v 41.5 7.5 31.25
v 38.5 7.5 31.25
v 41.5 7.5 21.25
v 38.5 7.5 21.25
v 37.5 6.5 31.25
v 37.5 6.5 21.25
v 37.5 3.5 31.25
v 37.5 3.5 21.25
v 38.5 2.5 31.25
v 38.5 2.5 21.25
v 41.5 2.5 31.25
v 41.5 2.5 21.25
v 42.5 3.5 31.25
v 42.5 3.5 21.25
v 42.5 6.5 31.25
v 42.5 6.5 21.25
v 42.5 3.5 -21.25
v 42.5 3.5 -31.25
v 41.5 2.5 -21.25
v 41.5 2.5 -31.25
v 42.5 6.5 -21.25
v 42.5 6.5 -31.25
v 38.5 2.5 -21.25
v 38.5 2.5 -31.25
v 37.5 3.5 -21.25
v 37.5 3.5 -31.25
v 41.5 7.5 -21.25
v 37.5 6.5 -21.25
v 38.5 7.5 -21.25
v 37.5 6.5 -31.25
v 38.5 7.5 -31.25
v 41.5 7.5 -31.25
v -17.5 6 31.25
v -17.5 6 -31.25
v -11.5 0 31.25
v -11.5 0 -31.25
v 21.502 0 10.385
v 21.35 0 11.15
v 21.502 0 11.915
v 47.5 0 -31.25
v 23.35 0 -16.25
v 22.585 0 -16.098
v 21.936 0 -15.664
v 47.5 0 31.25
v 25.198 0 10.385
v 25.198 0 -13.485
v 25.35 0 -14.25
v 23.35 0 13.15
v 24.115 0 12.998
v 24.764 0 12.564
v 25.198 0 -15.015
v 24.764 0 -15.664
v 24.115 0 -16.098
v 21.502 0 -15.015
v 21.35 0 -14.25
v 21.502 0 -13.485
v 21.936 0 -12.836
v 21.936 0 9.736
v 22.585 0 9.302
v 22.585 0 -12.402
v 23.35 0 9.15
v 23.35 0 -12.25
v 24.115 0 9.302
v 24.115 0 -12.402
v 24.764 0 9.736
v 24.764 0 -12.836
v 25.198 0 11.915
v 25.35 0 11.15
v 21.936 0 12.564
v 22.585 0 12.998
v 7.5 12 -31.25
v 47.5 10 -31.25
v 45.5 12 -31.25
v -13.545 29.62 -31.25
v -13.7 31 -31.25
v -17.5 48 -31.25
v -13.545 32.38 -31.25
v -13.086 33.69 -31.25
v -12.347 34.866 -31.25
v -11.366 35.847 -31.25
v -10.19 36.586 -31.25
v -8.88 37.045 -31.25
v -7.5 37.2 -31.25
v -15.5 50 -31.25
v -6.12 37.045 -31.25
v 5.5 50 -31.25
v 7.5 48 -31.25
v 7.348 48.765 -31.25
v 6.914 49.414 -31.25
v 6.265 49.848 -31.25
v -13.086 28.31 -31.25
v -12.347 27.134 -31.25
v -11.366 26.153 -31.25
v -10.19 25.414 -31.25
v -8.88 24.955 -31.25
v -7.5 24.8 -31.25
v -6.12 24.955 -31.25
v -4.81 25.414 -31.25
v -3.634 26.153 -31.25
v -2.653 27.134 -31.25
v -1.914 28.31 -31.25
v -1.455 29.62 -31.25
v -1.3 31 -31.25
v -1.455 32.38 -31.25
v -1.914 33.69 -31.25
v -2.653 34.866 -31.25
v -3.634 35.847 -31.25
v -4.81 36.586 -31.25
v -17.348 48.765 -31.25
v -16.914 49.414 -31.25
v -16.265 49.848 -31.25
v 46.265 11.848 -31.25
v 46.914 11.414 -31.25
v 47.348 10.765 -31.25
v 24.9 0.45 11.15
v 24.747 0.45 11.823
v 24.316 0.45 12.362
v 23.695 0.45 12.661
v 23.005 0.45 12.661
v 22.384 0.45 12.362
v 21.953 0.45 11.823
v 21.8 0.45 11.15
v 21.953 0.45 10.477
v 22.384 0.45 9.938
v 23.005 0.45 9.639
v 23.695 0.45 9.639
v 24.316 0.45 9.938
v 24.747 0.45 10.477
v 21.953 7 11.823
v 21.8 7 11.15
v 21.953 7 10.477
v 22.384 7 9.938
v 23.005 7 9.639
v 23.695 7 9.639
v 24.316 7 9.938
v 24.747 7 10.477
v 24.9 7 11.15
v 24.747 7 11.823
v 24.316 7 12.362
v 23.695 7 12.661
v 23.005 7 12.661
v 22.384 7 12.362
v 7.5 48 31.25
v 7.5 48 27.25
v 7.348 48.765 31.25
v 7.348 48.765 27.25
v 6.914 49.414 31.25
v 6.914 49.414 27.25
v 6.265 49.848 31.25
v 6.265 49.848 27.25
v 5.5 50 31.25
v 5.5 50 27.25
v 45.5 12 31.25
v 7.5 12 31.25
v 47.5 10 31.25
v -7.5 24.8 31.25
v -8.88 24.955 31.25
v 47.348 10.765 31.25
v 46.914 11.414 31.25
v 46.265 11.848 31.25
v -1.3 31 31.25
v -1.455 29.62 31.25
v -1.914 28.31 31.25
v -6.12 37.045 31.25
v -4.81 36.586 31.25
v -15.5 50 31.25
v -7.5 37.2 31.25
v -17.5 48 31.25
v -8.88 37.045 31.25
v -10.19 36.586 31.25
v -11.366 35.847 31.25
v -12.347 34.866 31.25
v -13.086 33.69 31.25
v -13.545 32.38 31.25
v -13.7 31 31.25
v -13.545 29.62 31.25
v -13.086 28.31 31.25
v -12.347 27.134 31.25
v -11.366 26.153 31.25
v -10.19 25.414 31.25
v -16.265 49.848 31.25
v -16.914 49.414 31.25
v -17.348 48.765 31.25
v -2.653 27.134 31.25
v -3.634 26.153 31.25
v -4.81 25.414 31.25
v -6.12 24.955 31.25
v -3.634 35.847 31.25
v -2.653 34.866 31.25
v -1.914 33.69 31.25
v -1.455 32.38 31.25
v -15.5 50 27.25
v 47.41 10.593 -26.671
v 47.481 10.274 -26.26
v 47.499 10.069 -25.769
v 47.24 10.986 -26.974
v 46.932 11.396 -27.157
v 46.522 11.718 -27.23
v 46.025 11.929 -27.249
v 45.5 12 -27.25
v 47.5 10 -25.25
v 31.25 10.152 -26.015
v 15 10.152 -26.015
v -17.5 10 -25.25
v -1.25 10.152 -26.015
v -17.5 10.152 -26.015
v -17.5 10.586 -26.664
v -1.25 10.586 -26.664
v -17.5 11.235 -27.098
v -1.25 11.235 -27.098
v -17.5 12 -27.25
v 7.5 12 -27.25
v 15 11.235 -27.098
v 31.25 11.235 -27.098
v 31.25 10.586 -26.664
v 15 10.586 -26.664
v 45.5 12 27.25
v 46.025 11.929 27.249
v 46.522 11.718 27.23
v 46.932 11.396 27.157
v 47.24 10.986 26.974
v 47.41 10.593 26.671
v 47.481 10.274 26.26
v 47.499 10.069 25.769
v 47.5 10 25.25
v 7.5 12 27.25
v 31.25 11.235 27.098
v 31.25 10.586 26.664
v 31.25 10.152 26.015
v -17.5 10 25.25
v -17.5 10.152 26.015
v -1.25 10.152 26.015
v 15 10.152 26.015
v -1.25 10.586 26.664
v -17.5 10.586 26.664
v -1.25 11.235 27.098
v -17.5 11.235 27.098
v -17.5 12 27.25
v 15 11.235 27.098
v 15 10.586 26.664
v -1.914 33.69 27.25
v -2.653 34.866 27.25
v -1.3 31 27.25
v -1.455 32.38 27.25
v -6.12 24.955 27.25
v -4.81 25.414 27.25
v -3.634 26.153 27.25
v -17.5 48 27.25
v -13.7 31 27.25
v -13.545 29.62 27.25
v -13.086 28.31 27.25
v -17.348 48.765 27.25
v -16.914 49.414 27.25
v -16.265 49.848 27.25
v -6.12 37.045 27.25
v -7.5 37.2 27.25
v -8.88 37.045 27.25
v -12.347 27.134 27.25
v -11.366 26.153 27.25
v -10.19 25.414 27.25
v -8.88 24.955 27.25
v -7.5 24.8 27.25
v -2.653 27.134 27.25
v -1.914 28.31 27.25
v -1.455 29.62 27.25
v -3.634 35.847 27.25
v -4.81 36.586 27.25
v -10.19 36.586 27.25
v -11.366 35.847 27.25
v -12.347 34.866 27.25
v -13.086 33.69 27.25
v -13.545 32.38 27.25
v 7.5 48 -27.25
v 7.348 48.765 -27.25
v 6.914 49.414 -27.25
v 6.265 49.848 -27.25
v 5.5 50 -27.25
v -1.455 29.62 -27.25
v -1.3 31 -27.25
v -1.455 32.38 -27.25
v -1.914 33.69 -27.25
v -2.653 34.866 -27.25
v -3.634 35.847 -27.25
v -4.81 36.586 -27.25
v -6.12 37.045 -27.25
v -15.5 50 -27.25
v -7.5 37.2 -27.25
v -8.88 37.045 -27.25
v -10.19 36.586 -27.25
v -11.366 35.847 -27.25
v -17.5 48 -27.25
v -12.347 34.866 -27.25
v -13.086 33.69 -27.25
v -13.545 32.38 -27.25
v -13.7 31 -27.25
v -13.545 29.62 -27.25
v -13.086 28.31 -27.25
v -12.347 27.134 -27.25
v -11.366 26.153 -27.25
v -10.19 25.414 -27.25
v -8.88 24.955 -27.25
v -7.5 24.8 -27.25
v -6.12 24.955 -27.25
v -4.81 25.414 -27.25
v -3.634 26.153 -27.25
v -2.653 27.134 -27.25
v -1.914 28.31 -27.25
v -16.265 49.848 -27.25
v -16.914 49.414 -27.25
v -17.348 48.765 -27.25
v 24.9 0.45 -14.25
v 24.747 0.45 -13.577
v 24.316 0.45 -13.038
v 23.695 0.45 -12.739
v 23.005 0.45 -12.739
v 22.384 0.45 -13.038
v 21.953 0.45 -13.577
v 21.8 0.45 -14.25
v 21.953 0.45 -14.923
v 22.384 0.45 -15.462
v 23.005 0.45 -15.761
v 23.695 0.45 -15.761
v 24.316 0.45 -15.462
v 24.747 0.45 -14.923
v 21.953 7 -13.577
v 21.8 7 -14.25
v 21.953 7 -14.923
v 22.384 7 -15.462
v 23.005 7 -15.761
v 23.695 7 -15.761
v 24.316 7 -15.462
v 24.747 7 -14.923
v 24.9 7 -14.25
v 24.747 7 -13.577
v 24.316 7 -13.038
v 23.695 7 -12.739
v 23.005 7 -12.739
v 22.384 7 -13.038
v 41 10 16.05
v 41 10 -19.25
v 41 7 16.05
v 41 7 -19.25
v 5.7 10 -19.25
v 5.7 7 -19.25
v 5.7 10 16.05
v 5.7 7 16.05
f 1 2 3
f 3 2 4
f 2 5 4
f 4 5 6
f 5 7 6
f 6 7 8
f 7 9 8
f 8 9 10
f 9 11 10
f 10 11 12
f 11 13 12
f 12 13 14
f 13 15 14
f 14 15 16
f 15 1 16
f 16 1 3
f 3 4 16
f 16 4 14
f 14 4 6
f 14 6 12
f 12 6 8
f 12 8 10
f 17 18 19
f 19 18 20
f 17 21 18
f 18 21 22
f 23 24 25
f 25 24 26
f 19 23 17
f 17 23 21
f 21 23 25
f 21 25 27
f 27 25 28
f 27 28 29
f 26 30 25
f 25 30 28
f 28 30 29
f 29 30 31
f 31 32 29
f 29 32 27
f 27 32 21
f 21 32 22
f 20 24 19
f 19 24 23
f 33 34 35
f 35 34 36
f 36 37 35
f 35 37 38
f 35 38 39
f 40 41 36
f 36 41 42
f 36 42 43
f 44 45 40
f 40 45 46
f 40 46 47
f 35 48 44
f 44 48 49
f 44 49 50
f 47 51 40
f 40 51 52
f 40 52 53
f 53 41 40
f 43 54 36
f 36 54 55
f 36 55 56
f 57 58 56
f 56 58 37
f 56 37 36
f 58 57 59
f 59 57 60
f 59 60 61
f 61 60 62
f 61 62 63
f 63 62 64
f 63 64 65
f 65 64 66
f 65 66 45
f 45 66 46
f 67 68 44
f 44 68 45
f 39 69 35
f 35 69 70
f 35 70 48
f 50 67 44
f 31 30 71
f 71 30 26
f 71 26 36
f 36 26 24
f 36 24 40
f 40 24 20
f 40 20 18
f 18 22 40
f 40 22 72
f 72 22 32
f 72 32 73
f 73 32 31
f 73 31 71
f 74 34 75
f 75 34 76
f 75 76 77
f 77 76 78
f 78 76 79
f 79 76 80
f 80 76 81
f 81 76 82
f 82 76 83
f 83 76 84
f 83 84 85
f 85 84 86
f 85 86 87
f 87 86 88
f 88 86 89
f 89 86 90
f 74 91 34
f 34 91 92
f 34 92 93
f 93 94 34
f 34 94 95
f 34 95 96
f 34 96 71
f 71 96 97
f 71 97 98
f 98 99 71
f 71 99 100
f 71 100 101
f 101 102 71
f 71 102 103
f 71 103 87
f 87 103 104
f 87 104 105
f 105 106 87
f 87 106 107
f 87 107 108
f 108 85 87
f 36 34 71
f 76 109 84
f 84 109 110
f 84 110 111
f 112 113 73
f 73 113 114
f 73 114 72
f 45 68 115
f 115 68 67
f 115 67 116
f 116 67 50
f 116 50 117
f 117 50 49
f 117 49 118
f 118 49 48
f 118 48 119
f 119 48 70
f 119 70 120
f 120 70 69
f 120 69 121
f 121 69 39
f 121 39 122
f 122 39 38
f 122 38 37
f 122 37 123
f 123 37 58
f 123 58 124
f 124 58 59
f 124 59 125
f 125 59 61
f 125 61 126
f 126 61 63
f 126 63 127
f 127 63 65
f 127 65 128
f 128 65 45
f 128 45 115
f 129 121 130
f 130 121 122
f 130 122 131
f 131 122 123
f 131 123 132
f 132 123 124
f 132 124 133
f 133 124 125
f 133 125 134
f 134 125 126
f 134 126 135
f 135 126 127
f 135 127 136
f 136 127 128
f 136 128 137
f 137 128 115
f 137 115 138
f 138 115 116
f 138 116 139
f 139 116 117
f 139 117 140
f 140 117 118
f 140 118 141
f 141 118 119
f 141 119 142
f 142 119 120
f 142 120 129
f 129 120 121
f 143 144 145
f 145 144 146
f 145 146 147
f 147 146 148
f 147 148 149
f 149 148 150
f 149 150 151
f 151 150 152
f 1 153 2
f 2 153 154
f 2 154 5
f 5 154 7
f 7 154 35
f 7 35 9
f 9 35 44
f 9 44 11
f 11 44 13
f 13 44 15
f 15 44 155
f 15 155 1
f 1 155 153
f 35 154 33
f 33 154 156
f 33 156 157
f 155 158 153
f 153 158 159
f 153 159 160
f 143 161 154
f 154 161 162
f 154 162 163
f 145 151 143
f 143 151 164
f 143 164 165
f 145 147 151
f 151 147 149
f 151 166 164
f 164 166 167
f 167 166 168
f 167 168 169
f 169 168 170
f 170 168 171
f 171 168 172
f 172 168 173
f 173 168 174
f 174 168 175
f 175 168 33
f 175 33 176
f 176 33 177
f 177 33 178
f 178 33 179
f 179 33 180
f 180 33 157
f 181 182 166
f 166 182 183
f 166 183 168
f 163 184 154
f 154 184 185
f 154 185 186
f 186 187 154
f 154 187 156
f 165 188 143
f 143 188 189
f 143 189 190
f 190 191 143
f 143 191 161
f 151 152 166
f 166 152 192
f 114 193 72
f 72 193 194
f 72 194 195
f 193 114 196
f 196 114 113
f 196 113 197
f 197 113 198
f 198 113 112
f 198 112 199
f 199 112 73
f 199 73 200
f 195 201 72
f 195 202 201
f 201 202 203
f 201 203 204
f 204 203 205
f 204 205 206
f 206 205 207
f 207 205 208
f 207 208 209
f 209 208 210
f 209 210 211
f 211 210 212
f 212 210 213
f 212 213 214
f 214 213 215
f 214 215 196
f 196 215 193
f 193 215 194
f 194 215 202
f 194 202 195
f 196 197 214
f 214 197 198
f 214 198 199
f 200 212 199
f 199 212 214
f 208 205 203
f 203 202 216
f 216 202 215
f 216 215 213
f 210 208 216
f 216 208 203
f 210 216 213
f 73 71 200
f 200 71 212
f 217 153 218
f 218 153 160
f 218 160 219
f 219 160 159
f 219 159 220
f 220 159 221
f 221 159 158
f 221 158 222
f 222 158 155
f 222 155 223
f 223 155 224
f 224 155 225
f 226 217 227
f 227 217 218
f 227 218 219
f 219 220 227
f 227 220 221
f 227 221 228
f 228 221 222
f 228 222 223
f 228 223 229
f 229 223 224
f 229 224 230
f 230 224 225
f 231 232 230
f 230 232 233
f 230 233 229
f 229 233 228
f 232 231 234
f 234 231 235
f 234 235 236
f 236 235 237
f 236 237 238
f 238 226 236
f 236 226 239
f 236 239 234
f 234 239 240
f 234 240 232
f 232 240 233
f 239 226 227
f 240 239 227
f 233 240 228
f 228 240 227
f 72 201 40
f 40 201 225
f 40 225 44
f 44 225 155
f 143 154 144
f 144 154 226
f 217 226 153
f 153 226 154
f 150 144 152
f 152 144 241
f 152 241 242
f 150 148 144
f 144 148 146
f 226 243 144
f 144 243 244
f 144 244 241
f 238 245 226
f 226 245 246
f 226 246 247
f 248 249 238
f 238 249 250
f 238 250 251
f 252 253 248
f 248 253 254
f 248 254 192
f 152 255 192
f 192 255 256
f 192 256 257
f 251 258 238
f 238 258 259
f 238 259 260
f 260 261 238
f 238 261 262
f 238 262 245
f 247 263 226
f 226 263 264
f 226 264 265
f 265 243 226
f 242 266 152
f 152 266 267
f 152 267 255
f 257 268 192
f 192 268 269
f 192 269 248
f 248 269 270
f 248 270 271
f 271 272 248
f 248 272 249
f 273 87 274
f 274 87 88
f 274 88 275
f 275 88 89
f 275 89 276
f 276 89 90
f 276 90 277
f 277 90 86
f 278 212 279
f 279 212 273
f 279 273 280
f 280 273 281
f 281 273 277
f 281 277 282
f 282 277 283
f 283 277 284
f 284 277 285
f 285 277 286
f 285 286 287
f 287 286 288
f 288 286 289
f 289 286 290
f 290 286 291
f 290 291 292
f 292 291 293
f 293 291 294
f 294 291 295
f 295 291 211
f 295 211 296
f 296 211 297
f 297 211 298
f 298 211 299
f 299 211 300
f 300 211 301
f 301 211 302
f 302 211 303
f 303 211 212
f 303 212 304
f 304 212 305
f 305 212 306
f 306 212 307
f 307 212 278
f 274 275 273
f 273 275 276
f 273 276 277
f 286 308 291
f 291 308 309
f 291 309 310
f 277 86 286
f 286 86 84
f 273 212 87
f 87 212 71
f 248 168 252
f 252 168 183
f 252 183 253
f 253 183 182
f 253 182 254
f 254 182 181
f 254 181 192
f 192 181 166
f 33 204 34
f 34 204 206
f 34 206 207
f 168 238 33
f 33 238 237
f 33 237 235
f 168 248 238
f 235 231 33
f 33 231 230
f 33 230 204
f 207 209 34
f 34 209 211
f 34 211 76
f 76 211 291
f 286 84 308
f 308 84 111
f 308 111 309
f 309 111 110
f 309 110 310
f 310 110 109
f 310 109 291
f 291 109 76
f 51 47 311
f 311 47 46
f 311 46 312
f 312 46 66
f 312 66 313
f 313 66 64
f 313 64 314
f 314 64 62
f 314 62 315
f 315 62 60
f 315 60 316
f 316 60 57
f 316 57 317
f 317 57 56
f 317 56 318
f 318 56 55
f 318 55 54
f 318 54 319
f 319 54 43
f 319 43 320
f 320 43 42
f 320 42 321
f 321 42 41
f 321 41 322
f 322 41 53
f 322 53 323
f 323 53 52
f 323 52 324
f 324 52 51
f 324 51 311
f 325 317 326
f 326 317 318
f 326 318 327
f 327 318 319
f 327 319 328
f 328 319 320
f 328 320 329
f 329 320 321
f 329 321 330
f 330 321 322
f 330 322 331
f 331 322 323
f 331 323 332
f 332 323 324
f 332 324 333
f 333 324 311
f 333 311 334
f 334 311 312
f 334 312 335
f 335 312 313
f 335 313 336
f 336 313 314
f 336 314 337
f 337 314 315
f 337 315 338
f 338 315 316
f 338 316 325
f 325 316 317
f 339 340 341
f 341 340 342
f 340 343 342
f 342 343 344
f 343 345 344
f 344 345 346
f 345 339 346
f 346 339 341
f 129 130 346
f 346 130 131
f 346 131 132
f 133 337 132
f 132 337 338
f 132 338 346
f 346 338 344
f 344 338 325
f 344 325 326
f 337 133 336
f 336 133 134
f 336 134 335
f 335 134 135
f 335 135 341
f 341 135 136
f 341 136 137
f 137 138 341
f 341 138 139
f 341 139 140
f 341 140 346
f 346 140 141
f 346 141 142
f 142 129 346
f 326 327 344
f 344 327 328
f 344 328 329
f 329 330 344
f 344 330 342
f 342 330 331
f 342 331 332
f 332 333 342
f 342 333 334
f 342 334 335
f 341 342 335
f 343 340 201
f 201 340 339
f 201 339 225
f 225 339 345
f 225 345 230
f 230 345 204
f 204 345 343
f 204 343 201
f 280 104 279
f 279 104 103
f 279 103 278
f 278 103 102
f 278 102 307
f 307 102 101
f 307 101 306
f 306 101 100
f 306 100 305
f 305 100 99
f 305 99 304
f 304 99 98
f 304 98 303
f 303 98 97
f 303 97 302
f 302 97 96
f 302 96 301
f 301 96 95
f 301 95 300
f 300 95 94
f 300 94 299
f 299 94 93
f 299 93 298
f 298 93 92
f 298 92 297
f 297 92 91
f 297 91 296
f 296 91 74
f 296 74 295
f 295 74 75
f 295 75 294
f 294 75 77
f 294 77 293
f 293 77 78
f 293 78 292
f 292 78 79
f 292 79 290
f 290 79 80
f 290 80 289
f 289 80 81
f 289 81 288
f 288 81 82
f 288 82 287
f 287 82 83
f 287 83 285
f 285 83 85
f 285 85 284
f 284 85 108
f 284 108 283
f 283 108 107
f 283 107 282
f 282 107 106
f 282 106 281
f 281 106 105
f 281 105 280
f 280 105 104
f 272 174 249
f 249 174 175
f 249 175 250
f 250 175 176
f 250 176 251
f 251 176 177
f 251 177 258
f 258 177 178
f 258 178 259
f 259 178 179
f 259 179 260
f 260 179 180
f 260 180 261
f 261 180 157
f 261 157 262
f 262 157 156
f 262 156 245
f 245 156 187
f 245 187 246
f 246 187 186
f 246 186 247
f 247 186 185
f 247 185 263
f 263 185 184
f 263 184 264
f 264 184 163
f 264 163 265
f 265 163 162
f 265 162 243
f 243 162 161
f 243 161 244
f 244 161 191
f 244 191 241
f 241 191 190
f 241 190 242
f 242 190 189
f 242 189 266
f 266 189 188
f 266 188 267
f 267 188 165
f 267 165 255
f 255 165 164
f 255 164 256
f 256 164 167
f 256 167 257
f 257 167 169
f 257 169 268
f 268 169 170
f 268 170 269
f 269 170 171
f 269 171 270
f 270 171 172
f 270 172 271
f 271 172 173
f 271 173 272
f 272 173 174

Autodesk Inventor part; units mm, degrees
ref_plane "YZ Plane" through (0, 0, 0) normal (1, 0, 0) x (0, 1, 0)
sketch "Sketch1" plane through (0, 0, 0) normal (0, 1, 0) x (-1, 0, 0)
  line L0 (17.5, 31.25) -> (-17.5, 31.25)
  line L1 (-17.5, 31.25) -> (-17.5, -31.25)
  line L2 (-17.5, -31.25) -> (17.5, -31.25)
  line L3 (17.5, -31.25) -> (17.5, 31.25)
  line L4 (17.5, 31.25) -> (-17.5, -31.25) construction
  line L5 (-17.5, 31.25) -> (17.5, -31.25) construction
  point P0 (0, 0)
  dimension "d0" = 35
  dimension "d1" = 62.5
extrude "Extrusion1" add sketch "Sketch1" along normal blind 50
sketch "Sketch2" plane through (0, 50, 0) normal (0, 1, 0) x (1, 0, 0)
  line L0 (17.5, -31.25) -> (17.5, 31.25) projected
  line L1 (-17.5, -27.25) -> (17.5, -27.25)
  line L2 (17.5, -27.25) -> (17.5, 27.25)
  line L3 (17.5, 27.25) -> (-17.5, 27.25)
  line L4 (-17.5, 27.25) -> (-17.5, -27.25)
  line L5 (-17.5, -27.25) -> (17.5, 27.25) construction
  line L6 (17.5, -27.25) -> (-17.5, 27.25) construction
  line L7 (-17.5, -31.25) -> (17.5, -31.25) projected
  point P0 (0, 0)
  point P1 (17.5, -27.25)
  dimension "d4" = 4
extrude "Extrusion2" cut sketch "Sketch2" against normal blind 40
sketch "Sketch3" plane through (-17.5, 0, 31.25) normal (0, 0, 1) x (1, 0, 0)
  circle A0 centre (10, 31) radius 6.2
  line L0 (35, 10) -> (0, 10) projected
  line L1 (35, 10) -> (35, 50) projected
  line L2 (0, 0) -> (0, 50) projected
  point P0 (17.5, 0)
  point P1 (35, 30)
  dimension "d7" = 12.4
  dimension "d15" = 21
  dimension "d38" = 10
extrude "Extrusion3" cut sketch "Sketch3" against normal blind 8
sketch "Sketch4" plane through (17.5, 0, -31.25) normal (0, 0, -1) x (-1, 0, 0)
  circle A0 centre (25, 31) radius 6.2 projected
  point P0 (17.5, 0)
extrude "Extrusion4" cut sketch "Sketch4" against normal blind 8
fillet "Fillet1" radius 2 2 edges at (0, 10, 27.25) (0, 10, -27.25)
sketch "Sketch5" plane through (17.5, 0, 31.25) normal (1, 0, 0) x (0, 0, -1)
  line L0 (4, 12) -> (4, 50) projected
  line L1 (0, 50) -> (4, 50) projected
  line L2 (0, 0) -> (0, 50) projected
  arc A0 (4, 12) -> (6, 10) centre (6, 12) ccw projected
  line L3 (0, 0) -> (62.5, 0) projected
  line L4 (56.5, 10) -> (6, 10) projected
  arc A1 (56.5, 10) -> (58.5, 12) centre (56.5, 12) ccw projected
  line L5 (58.5, 50) -> (58.5, 12) projected
  line L6 (62.5, 0) -> (62.5, 50) projected
  line L7 (58.5, 50) -> (62.5, 50) projected
  point P0 (31.25, 0)
extrude "Extrusion5" add sketch "Sketch5" along normal blind 30
sketch "Sketch6" plane through (0, 10, 0) normal (0, 1, 0) x (1, 0, 0)
  line L0 (5.7, 19.25) -> (41, 19.25)
  line L1 (41, 19.25) -> (41, -16.05)
  line L2 (41, -16.05) -> (5.7, -16.05)
  line L3 (5.7, -16.05) -> (5.7, 19.25)
  line L4 (5.7, 19.25) -> (41, -16.05) construction
  line L5 (41, 19.25) -> (5.7, -16.05) construction
  line L6 (-17.5, -25.25) -> (-17.5, 25.25) projected
  point P0 (0, 0)
  point P1 (23.35, 1.6)
  point P2 (-17.5, 0)
  point P3 (41, 1.6)
  point P4 (-17.5, 0)
  dimension "d16" = 35.3
  dimension "d17" = 35.3
  dimension "d84" = 1.6
  dimension "d108" = 58.5
extrude "Extrusion6" cut sketch "Sketch6" against normal blind 3
sketch "Sketch10" plane through (0, 0, 0) normal (0, -1, 0) x (1, 0, 0)
  line L0 (41, 16.05) -> (5.7, 16.05) projected
  line L1 (41, -19.25) -> (41, 16.05) projected
  line L2 (5.7, -19.25) -> (41, -19.25) projected
  line L3 (5.7, 16.05) -> (5.7, -19.25) projected
  point P0 (0, 0)
  point P1 (23.35, -14.25)
  point P2 (23.35, -19.25)
  dimension "d37" = 5
hole "Hole1" at (23.35, 0, -14.25) direction (0, 1, 0) diameter 3.1 end through all countersink diameter 4 countersink angle 90
ref_plane "Work Plane1" through (22.5, 0, -31.25) normal (-1, 0, 0) x (0, 0, 1)
fillet "Fillet4" radius 2 4 edges at (-17.5, 50, -29.25) (47.5, 50, -29.25) (47.5, 50, 29.25) (-17.5, 50, 29.25)
sketch "Sketch16" plane through (47.5, 0, -31.25) normal (0, 0, -1) x (-1, 0, 0)
  line L0 (63, 50) -> (2, 50) projected
  arc A0 (2, 50) -> (0, 48) centre (2, 48) ccw projected
  line L1 (0, 0) -> (0, 48) projected
  line L2 (0, 12) -> (65, 12) projected
  line L3 (40, 50) -> (40, 12)
  point P0 (47.5, 0)
  dimension "d93" = 40
extrude "Extrusion14" cut sketch "Sketch16" against normal blind 4
fillet "Fillet5" radius 2 1 edges at (7.5, 50, -29.25)
sketch "Sketch17" plane through (-17.5, 0, 31.25) normal (0, 0, 1) x (1, 0, 0)
  line L0 (2, 50) -> (63, 50) projected
  line L1 (65, 48) -> (65, 0) projected
  arc A0 (65, 48) -> (63, 50) centre (63, 48) ccw projected
  line L2 (0, 12) -> (65, 12) projected
  line L3 (25, 50) -> (25, 12)
  point P0 (17.5, 0)
  dimension "d88" = 40
extrude "Extrusion15" cut sketch "Sketch17" against normal blind 4
fillet "Fillet6" radius 2 2 edges at (47.5, 12, 29.25) (47.5, 12, -29.25)
fillet "Fillet7" radius 2 1 edges at (7.5, 50, 29.25)
ref_plane "Work Plane2" through (41, 10, -1.55) normal (0, 0, -1) x (-1, 0, 0)
mirror "Mirror5" about plane through (41, 10, -1.55) normal (0, 0, -1) of "Hole1"
chamfer "Chamfer1" distance 6 angle 45 1 edges at (-17.5, 0, 0)
sketch "Sketch18" plane through (5.5, 50, -31.25) normal (0, 0, -1) x (-1, 0, 0)
  line L0 (-37, -42.5) -> (-32, -42.5)
  line L1 (-32, -42.5) -> (-32, -47.5)
  line L2 (-32, -47.5) -> (-37, -47.5)
  line L3 (-37, -47.5) -> (-37, -42.5)
  line L4 (-42, -50) -> (-42, -40) projected
  point P0 (5.5, -50)
  point P1 (-42, -45)
  point P2 (-37, -45)
  point P3 (-42, -45)
  dimension "d98" = 5
  dimension "d99" = 5
  dimension "d100" = 5
extrude "Extrusion16" cut sketch "Sketch18" against normal blind 10
chamfer "Chamfer2" distance 1 angle 45 4 edges at (42.5, 7.5, -26.25) (37.5, 7.5, -26.25) (37.5, 2.5, -26.25) (42.5, 2.5, -26.25)
sketch "Sketch19" plane through (7.5, 12, 31.25) normal (0, 0, 1) x (1, 0, 0)
  line L0 (34, -4.5) -> (31, -4.5) projected
  line L1 (30, -5.5) -> (31, -4.5) projected
  line L2 (30, -5.5) -> (30, -8.5) projected
  line L3 (31, -9.5) -> (30, -8.5) projected
  line L4 (31, -9.5) -> (34, -9.5) projected
  line L5 (35, -8.5) -> (34, -9.5) projected
  line L6 (35, -8.5) -> (35, -5.5) projected
  line L7 (34, -4.5) -> (35, -5.5) projected
  point P0 (-7.5, -12)
extrude "Extrusion17" cut sketch "Sketch19" against normal blind 10
properties part number "base_engrane"
